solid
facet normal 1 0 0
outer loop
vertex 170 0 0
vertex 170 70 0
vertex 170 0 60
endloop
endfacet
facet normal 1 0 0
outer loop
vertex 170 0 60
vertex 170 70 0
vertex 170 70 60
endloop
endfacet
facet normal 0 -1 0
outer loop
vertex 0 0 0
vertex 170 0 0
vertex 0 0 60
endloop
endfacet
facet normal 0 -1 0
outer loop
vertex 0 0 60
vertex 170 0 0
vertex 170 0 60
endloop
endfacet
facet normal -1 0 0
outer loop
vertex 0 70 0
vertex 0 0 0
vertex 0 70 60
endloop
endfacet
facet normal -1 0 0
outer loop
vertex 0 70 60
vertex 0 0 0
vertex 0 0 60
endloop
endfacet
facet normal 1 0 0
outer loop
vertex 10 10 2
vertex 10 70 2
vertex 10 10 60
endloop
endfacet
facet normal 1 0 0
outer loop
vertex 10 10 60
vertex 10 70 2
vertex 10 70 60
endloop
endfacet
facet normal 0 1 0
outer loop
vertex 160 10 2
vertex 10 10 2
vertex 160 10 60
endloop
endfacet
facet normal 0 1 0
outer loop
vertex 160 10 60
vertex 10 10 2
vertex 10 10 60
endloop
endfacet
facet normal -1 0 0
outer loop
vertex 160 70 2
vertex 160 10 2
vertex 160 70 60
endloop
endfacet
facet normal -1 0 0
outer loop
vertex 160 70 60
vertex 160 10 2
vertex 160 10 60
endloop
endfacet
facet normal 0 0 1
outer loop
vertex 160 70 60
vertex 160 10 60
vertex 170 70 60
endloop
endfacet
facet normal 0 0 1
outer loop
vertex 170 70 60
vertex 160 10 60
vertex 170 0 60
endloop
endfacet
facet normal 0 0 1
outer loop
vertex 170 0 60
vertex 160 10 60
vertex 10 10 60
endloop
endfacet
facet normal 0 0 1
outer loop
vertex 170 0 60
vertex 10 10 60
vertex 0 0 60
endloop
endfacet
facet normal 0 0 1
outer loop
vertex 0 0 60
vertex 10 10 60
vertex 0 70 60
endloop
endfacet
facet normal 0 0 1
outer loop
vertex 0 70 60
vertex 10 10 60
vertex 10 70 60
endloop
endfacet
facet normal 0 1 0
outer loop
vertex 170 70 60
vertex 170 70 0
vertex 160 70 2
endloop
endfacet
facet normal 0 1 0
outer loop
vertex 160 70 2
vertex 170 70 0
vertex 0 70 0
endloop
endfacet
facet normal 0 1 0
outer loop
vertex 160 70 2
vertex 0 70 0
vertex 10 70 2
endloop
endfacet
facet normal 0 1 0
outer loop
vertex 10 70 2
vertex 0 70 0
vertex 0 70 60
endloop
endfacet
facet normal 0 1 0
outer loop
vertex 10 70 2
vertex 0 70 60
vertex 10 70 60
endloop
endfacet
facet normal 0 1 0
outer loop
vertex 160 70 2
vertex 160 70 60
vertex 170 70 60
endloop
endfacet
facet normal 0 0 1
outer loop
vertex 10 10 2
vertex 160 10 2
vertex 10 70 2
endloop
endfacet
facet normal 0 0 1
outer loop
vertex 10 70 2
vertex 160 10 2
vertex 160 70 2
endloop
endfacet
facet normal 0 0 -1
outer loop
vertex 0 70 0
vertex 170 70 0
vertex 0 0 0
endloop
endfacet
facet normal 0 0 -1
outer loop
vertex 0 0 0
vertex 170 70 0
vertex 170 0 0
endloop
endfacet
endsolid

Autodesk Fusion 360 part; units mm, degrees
sketch "Sketch1" plane through (0, 0, 0) normal (0, 0, 1) x (1, 0, 0)
  line L0 (0, 0) -> (170, 0)
  line L1 (170, 0) -> (170, 70)
  line L2 (170, 70) -> (0, 70)
  line L3 (0, 70) -> (0, 0)
  line L4 (0, 70) -> (10, 70)
  line L5 (10, 70) -> (10, 0)
  line L6 (10, 0) -> (0, 0)
  line L7 (0, 0) -> (0, 70)
  line L8 (0, 10) -> (170, 10)
  line L9 (170, 10) -> (170, 0)
  line L10 (170, 0) -> (0, 0)
  line L11 (0, 0) -> (0, 10)
  line L12 (170, 0) -> (160, 0)
  line L13 (160, 0) -> (160, 70)
  line L14 (160, 70) -> (170, 70)
  line L15 (170, 70) -> (170, 0)
  dimension "d1" = 170
  dimension "d2" = 70
extrude "Extrude1" add sketch "Sketch1" along normal blind 2 contours L2 L5 L8 L13
extrude "Extrude2" add sketch "Sketch1" along normal blind 60 contours L0 L3 L5 L6 L7 L8 L10 L11 | L0 L5 L8 L10 L13 | L2 L3 L4 L5 L7 L8 | L0 L1 L8 L9 L10 L12 L13 L15 | L1 L2 L8 L13 L14 L15
